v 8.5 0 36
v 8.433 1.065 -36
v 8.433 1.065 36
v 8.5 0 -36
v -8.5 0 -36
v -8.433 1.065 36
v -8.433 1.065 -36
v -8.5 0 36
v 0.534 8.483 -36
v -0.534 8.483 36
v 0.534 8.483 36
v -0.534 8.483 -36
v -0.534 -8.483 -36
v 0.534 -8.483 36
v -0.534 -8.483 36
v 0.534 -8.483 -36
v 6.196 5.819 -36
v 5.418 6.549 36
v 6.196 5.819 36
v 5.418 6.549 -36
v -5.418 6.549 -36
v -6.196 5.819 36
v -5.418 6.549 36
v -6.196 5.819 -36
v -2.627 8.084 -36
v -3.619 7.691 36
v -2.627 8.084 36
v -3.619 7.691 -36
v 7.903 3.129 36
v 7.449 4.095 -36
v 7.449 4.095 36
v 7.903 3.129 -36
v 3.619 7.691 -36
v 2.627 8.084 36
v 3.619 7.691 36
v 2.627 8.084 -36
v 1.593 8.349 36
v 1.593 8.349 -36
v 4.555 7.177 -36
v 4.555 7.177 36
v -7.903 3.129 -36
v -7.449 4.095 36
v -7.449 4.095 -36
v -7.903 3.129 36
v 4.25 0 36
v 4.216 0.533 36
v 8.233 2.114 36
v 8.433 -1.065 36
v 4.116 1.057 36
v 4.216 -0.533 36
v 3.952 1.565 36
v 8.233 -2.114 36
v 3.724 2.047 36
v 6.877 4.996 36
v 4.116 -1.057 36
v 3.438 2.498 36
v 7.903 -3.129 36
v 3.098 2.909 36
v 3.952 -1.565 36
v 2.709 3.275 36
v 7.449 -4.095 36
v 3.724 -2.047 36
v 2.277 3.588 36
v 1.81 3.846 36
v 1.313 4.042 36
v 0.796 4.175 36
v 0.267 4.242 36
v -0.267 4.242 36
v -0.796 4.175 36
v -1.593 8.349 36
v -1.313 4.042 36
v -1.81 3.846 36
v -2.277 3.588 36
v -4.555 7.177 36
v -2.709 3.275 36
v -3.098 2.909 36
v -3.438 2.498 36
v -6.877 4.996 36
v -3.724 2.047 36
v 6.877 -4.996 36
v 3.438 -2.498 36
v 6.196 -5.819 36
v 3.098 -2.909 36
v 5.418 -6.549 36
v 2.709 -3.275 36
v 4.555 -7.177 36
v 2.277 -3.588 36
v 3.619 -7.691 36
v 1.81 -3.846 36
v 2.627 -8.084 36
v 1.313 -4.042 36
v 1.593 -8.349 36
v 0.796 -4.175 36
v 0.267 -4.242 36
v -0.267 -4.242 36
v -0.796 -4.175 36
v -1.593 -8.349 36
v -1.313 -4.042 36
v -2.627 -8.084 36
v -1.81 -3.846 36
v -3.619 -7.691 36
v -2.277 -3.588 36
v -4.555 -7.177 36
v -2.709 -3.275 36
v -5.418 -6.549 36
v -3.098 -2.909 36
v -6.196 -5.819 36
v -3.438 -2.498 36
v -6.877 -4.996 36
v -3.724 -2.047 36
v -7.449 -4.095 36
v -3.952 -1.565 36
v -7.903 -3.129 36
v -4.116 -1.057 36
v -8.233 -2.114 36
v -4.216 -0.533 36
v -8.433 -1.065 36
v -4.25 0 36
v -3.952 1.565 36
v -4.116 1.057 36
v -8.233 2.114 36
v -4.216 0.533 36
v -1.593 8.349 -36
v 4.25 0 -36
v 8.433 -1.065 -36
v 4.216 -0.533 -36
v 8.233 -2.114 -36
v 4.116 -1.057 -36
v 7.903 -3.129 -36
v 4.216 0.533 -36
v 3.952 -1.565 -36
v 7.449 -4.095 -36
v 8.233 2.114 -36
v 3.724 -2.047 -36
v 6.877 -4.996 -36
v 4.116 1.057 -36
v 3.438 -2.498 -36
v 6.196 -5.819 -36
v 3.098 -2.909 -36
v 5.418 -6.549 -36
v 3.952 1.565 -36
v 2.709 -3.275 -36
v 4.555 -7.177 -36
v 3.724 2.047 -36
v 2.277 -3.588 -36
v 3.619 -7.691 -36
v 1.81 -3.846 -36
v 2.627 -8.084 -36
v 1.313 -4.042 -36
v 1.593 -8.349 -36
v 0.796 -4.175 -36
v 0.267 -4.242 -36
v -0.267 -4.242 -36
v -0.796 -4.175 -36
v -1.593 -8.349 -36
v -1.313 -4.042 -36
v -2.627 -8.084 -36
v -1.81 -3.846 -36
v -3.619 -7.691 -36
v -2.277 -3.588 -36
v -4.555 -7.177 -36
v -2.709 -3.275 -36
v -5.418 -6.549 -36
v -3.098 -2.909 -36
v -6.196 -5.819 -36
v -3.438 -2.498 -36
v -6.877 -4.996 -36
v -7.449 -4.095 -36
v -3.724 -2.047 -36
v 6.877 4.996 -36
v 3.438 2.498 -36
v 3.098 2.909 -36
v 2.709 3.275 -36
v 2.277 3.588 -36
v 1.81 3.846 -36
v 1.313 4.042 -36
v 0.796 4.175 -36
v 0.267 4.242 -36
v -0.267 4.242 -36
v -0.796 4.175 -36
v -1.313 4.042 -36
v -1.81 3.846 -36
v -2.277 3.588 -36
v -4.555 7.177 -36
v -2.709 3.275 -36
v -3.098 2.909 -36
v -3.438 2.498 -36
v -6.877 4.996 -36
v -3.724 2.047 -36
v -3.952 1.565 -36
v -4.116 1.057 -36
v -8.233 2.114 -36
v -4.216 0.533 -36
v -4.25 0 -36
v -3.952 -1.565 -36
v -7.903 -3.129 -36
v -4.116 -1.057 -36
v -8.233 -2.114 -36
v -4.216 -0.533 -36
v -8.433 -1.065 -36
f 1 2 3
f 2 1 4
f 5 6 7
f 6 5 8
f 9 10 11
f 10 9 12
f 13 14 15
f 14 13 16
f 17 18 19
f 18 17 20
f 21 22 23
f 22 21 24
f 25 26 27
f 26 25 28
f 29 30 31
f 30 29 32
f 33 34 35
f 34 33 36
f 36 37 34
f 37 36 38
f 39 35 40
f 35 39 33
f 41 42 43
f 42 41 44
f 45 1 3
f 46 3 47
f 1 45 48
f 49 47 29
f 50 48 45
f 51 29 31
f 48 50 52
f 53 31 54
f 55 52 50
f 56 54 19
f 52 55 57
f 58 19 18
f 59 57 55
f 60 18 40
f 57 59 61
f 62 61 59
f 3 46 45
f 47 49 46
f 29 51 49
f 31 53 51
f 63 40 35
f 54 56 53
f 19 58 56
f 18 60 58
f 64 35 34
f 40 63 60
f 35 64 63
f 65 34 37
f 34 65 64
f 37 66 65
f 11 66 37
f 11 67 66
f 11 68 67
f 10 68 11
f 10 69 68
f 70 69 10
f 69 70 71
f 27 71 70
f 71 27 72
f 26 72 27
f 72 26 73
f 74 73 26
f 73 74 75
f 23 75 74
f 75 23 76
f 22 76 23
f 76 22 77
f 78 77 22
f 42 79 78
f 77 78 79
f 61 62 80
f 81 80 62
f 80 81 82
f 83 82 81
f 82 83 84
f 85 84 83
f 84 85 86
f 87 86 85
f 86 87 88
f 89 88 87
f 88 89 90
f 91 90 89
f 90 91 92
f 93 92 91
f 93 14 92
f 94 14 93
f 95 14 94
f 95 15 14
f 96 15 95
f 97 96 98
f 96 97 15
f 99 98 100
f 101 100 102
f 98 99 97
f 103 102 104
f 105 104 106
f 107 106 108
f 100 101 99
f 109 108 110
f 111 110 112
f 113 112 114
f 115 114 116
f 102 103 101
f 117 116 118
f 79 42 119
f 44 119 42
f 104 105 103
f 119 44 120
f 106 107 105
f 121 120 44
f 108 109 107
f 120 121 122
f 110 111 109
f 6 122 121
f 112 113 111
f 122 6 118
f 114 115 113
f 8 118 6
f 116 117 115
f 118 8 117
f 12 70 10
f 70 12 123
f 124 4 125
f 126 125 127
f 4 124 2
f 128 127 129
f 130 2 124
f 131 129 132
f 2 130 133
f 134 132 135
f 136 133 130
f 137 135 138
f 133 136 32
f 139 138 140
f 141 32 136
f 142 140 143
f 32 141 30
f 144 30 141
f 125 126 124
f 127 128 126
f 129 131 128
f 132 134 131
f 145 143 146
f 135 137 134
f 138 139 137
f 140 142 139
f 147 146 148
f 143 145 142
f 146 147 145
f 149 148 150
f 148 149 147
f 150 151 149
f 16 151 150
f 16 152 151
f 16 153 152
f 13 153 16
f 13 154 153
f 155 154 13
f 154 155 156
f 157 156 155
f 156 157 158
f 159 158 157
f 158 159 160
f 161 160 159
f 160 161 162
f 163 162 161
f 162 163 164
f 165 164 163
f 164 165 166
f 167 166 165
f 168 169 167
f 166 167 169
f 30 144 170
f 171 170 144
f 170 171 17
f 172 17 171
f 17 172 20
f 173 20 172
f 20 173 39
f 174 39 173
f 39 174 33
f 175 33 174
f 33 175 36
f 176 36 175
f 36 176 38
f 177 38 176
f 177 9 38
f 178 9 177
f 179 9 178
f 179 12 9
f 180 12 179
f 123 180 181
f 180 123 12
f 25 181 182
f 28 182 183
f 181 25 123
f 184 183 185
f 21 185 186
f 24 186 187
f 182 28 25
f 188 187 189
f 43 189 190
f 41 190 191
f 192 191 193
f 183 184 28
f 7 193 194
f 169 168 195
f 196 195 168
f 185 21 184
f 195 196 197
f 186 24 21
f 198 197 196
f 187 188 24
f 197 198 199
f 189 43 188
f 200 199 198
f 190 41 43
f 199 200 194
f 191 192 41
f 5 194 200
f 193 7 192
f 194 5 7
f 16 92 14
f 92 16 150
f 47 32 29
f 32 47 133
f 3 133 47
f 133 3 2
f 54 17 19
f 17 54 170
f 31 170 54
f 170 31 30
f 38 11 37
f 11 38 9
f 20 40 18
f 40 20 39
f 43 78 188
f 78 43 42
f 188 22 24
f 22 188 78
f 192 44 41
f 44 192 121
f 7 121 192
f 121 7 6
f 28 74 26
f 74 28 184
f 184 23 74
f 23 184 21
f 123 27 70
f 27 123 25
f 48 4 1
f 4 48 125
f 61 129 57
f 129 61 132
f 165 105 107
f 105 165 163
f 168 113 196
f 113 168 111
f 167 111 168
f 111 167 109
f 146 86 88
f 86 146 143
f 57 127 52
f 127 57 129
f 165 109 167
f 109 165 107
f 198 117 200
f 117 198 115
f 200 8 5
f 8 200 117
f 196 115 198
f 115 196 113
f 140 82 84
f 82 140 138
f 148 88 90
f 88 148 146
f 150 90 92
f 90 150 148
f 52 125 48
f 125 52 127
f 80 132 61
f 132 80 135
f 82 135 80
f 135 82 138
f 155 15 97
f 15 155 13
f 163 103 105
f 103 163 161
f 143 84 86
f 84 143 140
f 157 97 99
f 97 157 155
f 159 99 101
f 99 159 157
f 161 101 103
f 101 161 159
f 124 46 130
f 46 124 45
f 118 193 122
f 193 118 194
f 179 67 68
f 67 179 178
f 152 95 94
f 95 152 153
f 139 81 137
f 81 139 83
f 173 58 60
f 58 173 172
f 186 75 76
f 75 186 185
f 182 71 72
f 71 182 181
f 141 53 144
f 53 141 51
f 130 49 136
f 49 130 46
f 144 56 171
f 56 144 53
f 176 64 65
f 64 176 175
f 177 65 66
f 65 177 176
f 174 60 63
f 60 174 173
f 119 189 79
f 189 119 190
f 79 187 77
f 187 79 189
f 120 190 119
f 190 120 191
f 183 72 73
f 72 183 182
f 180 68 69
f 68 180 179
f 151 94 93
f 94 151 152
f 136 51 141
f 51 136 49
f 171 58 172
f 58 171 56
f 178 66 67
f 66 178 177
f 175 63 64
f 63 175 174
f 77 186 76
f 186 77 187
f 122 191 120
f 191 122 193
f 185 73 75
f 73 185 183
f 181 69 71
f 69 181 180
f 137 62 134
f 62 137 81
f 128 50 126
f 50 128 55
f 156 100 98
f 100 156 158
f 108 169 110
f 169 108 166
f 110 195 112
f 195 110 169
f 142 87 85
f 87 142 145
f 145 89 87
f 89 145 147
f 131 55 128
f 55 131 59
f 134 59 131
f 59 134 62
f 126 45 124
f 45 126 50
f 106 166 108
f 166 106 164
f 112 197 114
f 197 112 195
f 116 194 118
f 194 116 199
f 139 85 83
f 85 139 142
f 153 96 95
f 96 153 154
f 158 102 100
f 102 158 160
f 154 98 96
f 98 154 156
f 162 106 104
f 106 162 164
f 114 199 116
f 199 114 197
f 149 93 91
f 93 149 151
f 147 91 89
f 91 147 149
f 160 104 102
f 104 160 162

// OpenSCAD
$fn = 50;


difference() {
	union() {
		translate(v = [0, 0, -36.0000000000]) {
			cylinder(h = 72, r = 8.5000000000);
		}
	}
	union() {
		translate(v = [0, 0, -100.0000000000]) {
			cylinder(h = 200, r = 4.2500000000);
		}
	}
}
